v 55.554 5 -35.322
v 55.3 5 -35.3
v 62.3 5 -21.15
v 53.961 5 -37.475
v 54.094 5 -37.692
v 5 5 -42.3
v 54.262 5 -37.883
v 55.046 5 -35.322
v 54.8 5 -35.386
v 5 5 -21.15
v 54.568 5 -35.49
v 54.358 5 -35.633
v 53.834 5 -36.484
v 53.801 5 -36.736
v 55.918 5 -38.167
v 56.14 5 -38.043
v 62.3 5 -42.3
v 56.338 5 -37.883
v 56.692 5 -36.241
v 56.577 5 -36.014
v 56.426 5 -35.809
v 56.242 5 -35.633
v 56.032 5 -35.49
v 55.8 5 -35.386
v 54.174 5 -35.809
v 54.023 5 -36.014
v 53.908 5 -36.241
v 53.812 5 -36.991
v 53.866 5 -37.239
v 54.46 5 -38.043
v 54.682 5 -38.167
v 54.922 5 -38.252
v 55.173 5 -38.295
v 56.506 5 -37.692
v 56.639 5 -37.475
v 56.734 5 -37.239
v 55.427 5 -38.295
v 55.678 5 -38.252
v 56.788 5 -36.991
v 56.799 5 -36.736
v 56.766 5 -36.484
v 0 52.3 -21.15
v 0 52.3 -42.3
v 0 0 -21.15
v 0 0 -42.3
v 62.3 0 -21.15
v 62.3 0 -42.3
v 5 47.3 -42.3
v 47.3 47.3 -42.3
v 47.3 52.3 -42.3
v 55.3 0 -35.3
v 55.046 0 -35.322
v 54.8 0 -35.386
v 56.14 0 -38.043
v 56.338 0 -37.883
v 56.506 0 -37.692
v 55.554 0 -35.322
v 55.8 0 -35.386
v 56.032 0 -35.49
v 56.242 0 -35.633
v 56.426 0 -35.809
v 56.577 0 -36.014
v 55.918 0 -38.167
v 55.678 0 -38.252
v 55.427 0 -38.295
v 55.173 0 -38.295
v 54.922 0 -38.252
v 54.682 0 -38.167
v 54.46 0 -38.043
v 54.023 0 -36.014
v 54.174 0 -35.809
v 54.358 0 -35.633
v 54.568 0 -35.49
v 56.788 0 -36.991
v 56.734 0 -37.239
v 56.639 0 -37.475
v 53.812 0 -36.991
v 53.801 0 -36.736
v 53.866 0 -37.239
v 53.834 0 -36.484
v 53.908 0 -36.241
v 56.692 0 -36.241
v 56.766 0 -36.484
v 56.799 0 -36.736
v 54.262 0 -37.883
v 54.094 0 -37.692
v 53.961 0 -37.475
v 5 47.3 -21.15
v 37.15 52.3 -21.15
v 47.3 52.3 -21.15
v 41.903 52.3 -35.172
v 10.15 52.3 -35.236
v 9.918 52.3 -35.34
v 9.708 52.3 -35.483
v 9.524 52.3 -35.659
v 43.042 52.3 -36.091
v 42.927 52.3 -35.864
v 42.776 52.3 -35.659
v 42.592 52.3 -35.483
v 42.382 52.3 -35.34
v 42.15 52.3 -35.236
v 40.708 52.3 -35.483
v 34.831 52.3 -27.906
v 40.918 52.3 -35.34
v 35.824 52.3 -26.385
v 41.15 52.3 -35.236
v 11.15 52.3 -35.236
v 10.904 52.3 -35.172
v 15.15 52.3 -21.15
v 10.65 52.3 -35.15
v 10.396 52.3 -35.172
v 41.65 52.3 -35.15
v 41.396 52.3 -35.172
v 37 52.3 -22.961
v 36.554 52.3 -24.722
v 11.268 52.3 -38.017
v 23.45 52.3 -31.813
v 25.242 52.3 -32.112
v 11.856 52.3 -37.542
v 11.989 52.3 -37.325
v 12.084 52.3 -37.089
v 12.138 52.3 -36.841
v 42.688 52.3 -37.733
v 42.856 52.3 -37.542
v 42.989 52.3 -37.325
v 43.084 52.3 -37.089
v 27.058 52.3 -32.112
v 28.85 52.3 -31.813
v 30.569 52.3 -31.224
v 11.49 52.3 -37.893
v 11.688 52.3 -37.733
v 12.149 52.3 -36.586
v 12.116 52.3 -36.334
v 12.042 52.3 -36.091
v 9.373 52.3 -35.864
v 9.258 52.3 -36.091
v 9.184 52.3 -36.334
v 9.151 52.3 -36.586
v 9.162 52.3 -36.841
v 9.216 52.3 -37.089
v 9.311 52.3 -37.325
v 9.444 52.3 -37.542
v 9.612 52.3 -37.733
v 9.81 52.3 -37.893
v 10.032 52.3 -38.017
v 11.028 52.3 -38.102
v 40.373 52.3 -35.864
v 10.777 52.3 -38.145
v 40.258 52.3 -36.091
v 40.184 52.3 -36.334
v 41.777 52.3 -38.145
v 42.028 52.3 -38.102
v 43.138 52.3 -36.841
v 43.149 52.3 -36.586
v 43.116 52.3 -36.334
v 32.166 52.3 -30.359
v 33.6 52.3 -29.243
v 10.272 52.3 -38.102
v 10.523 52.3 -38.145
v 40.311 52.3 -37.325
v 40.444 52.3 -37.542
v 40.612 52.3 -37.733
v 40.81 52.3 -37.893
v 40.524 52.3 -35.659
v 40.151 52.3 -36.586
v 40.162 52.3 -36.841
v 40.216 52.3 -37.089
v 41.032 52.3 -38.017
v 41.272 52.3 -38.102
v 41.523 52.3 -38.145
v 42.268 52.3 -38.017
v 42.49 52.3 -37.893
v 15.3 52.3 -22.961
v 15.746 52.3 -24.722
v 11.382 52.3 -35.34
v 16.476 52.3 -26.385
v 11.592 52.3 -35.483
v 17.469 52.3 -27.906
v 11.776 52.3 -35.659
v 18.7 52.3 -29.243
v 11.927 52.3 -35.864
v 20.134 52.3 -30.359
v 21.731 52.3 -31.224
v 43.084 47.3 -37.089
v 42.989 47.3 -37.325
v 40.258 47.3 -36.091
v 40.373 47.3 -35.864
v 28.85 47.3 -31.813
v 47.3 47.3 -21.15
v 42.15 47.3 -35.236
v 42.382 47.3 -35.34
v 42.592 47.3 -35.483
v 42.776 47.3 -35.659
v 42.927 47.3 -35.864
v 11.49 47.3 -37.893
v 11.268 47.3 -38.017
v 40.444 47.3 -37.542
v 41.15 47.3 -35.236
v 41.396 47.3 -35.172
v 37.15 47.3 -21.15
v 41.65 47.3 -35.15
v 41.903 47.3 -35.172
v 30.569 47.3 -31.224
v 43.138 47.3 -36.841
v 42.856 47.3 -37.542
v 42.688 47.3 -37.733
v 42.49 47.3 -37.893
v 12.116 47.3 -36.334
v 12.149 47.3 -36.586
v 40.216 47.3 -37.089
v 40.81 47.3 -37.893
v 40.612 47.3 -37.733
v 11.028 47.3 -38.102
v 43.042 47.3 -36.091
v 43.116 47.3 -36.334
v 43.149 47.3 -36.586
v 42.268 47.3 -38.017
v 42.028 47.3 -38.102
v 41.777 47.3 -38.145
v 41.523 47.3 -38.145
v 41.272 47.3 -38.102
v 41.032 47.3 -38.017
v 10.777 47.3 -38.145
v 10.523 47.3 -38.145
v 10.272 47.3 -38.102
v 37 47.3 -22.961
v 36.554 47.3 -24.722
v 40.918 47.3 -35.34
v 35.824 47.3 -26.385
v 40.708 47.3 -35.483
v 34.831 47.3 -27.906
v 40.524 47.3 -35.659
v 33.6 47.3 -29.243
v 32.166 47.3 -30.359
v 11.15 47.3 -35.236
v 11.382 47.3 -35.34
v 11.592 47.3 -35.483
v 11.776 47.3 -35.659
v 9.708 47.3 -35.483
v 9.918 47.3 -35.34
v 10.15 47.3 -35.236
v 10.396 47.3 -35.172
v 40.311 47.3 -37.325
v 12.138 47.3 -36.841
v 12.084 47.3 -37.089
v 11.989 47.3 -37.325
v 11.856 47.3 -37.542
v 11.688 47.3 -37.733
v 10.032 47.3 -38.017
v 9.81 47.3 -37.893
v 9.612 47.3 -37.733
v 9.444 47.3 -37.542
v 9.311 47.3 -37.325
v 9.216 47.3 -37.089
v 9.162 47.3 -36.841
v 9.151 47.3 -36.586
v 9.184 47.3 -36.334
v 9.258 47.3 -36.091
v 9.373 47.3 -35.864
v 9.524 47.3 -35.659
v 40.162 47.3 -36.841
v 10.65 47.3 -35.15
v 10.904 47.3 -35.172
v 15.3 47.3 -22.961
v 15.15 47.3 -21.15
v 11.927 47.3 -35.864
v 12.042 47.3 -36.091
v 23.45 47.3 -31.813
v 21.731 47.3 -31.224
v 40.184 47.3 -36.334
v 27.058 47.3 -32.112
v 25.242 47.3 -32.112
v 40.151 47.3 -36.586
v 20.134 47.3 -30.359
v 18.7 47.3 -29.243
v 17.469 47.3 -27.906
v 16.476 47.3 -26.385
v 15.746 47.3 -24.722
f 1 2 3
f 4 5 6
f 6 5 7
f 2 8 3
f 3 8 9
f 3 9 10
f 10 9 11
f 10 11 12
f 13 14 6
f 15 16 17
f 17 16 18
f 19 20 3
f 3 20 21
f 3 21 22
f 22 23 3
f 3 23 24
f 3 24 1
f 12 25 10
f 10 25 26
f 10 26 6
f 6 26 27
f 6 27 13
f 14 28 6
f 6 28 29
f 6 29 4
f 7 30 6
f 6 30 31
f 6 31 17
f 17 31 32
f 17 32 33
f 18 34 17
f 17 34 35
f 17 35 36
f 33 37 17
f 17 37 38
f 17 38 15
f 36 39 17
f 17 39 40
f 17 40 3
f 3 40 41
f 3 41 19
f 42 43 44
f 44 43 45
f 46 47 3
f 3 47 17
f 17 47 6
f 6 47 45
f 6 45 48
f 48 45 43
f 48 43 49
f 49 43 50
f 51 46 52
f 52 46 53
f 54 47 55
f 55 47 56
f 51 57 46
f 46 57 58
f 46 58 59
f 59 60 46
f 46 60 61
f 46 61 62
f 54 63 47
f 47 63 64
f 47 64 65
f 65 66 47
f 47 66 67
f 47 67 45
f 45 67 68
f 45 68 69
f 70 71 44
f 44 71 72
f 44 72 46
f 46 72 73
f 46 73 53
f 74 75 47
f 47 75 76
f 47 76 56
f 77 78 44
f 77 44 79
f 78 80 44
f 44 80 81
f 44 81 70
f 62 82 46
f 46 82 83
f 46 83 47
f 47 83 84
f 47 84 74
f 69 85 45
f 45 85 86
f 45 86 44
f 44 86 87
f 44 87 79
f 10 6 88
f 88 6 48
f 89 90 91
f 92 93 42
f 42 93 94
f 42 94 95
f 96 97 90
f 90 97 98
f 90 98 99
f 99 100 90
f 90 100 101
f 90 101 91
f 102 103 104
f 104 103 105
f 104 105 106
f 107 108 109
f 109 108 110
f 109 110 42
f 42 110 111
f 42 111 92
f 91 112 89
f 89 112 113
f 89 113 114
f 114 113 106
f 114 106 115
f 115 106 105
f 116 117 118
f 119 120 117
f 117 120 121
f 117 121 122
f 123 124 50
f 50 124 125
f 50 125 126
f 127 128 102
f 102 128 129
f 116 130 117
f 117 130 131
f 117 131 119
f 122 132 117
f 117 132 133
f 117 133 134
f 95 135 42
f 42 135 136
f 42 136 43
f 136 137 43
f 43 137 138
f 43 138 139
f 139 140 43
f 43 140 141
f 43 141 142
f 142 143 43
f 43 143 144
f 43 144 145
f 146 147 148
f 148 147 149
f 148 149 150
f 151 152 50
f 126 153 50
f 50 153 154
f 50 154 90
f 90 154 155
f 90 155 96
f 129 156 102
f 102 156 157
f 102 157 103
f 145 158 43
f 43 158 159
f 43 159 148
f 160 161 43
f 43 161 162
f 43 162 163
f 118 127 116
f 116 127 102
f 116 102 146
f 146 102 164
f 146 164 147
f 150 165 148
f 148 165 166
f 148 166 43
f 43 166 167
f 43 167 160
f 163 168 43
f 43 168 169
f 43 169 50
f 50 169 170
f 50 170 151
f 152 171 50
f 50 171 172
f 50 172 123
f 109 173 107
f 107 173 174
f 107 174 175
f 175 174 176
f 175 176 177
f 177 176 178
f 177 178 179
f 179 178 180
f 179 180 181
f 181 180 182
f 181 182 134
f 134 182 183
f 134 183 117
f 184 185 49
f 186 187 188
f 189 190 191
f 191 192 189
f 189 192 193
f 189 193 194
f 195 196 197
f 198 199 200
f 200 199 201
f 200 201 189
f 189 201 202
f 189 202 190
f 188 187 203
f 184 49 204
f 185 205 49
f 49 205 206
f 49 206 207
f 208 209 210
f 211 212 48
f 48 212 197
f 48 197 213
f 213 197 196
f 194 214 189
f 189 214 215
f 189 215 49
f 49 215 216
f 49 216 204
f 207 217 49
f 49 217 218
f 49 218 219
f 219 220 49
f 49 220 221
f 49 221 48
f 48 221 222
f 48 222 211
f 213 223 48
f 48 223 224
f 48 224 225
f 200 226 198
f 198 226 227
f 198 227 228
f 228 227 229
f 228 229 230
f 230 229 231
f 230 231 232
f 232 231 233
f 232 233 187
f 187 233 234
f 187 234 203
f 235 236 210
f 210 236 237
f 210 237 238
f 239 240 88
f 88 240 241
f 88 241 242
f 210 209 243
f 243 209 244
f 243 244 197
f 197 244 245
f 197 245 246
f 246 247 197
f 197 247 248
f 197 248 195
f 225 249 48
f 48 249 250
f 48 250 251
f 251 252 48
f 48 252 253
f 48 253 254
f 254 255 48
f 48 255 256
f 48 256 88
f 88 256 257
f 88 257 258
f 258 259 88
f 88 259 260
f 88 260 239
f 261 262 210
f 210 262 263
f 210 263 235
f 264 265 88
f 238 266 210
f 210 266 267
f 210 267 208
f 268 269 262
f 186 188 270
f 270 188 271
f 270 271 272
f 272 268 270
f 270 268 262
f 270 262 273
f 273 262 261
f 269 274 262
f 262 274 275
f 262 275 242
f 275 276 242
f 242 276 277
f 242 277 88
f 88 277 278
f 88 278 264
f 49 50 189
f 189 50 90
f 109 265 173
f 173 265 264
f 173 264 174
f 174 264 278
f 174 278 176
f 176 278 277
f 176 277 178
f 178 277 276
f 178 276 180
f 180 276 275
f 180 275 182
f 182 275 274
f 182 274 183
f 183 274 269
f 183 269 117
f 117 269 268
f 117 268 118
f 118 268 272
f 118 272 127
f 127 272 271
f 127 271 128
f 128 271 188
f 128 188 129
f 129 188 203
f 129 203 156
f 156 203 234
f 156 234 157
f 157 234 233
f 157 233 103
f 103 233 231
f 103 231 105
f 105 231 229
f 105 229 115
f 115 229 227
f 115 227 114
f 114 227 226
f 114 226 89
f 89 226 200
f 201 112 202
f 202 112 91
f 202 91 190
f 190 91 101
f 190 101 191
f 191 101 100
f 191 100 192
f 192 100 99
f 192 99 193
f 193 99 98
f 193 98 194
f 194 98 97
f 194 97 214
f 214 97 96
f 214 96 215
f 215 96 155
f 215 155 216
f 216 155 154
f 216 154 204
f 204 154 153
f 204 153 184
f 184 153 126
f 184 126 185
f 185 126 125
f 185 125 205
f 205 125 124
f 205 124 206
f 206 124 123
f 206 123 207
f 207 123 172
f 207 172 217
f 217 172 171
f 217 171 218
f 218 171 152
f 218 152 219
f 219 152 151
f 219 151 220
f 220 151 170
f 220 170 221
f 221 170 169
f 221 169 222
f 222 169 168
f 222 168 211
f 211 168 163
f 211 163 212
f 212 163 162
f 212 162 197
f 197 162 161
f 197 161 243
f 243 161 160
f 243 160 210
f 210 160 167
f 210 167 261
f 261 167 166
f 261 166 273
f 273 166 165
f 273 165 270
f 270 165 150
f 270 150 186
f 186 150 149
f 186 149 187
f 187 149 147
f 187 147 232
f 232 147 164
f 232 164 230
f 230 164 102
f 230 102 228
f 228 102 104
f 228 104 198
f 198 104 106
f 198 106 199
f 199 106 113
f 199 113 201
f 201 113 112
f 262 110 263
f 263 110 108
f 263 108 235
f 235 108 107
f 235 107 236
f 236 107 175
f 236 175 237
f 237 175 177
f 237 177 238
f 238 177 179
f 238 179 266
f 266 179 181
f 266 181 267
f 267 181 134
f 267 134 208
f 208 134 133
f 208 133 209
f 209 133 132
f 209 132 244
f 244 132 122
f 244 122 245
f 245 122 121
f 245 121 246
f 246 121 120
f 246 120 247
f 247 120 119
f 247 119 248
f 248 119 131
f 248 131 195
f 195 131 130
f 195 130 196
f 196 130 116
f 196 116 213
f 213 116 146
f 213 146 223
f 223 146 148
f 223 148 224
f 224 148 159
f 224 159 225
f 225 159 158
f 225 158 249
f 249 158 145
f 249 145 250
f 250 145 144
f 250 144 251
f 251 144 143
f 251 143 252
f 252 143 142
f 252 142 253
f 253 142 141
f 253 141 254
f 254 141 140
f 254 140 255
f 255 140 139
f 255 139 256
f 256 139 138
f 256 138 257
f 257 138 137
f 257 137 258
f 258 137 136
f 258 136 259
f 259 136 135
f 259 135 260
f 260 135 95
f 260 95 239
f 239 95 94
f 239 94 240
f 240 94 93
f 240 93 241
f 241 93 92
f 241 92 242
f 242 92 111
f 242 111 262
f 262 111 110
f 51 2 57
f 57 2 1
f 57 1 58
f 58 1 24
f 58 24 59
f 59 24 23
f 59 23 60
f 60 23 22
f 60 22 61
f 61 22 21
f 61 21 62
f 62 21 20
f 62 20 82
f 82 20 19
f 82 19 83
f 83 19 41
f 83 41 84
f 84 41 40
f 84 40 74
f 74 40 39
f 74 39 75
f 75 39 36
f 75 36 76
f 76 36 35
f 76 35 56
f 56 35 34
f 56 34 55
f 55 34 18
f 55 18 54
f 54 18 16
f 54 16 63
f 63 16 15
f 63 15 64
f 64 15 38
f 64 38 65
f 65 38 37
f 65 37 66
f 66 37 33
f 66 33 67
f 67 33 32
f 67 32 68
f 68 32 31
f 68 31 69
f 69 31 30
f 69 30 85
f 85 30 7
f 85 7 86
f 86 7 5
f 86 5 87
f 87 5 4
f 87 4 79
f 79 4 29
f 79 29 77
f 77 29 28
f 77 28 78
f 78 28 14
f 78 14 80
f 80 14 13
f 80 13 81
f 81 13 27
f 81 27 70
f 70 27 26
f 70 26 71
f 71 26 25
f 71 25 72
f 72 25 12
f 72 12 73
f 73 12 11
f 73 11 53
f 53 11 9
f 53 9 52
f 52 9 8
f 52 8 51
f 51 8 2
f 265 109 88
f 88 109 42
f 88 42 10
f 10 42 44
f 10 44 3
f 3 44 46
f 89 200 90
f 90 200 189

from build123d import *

# Parameters (mm, degrees)
SKETCH1_W           = 62.3
SKETCH1_H           = 42.3
BOSS_EXTRUDE1_DEPTH = 5
SKETCH2_W           = 5
SKETCH2_H           = 42.3
BOSS_EXTRUDE2_DEPTH = 42.3
SKETCH3_W           = 47.3
SKETCH3_H           = 42.3
SKETCH3_R           = 11
BOSS_EXTRUDE3_DEPTH = 5
SKETCH4_R           = 1.5
CUT_EXTRUDE1_DEPTH  = 5
SKETCH5_R           = 1.5
CUT_EXTRUDE2_DEPTH  = 5
SKETCH6_W           = 66.403823896
SKETCH6_H           = 55.517872021
CUT_EXTRUDE3_DEPTH  = 40


with BuildPart() as part:
    # Sketch1 → Boss-Extrude1 (new body)
    with BuildSketch(Plane(origin=(0, 0, 0), x_dir=(1, 0, 0), z_dir=(0, 1, 0))):
        with Locations((31.15, 21.15)):
            Rectangle(SKETCH1_W, SKETCH1_H)
    extrude(amount=BOSS_EXTRUDE1_DEPTH)

    # Sketch2 → Boss-Extrude2 (add)
    with BuildSketch(Plane(origin=(0, 5, 0), x_dir=(1, 0, 0), z_dir=(0, 1, 0))):
        with Locations((2.5, 21.15)):
            Rectangle(SKETCH2_W, SKETCH2_H)
    extrude(amount=BOSS_EXTRUDE2_DEPTH)

    # Sketch3 → Boss-Extrude3 (add)
    with BuildSketch(Plane(origin=(0, 47.3, 0), x_dir=(1, 0, 0), z_dir=(0, 1, 0))):
        with Locations((23.65, 21.15)):
            Rectangle(SKETCH3_W, SKETCH3_H)
        with Locations(Location((26.15, 21.15, 0), (0, 0, 270))):
            Circle(SKETCH3_R, mode=Mode.SUBTRACT)
    extrude(amount=BOSS_EXTRUDE3_DEPTH)

    # Sketch4 → Cut-Extrude1 (cut)
    with BuildSketch(Plane(origin=(0, 52.3, 0), x_dir=(1, 0, 0), z_dir=(0, 1, 0))):
        with Locations(Location((41.65, 36.65, 0), (0, 0, 270))):
            Circle(SKETCH4_R)
        with Locations(Location((10.65, 36.65, 0), (0, 0, 270))):
            Circle(SKETCH4_R)
        with Locations(Location((10.65, 5.65, 0), (0, 0, 270))):
            Circle(SKETCH4_R)
        with Locations(Location((41.65, 5.65, 0), (0, 0, 270))):
            Circle(SKETCH4_R)
    extrude(amount=-CUT_EXTRUDE1_DEPTH, mode=Mode.SUBTRACT)

    # Sketch5 → Cut-Extrude2 (cut)
    with BuildSketch(Plane(origin=(0, 5, 0), x_dir=(1, 0, 0), z_dir=(0, 1, 0))):
        with Locations(Location((55.3, 5.5, 0), (0, 0, 270))):
            Circle(SKETCH5_R)
        with Locations(Location((55.3, 36.8, 0), (0, 0, 270))):
            Circle(SKETCH5_R)
    extrude(amount=-CUT_EXTRUDE2_DEPTH, mode=Mode.SUBTRACT)

    # Sketch6 → Cut-Extrude3 (cut)
    with BuildSketch(Plane(origin=(0, 0, -21.15), x_dir=(-1, 0, 0), z_dir=(0, 0, -1))):
        with Locations((-30.988329777, 26.343035963)):
            Rectangle(SKETCH6_W, SKETCH6_H)
    extrude(amount=-CUT_EXTRUDE3_DEPTH, mode=Mode.SUBTRACT)


solid = part.part
